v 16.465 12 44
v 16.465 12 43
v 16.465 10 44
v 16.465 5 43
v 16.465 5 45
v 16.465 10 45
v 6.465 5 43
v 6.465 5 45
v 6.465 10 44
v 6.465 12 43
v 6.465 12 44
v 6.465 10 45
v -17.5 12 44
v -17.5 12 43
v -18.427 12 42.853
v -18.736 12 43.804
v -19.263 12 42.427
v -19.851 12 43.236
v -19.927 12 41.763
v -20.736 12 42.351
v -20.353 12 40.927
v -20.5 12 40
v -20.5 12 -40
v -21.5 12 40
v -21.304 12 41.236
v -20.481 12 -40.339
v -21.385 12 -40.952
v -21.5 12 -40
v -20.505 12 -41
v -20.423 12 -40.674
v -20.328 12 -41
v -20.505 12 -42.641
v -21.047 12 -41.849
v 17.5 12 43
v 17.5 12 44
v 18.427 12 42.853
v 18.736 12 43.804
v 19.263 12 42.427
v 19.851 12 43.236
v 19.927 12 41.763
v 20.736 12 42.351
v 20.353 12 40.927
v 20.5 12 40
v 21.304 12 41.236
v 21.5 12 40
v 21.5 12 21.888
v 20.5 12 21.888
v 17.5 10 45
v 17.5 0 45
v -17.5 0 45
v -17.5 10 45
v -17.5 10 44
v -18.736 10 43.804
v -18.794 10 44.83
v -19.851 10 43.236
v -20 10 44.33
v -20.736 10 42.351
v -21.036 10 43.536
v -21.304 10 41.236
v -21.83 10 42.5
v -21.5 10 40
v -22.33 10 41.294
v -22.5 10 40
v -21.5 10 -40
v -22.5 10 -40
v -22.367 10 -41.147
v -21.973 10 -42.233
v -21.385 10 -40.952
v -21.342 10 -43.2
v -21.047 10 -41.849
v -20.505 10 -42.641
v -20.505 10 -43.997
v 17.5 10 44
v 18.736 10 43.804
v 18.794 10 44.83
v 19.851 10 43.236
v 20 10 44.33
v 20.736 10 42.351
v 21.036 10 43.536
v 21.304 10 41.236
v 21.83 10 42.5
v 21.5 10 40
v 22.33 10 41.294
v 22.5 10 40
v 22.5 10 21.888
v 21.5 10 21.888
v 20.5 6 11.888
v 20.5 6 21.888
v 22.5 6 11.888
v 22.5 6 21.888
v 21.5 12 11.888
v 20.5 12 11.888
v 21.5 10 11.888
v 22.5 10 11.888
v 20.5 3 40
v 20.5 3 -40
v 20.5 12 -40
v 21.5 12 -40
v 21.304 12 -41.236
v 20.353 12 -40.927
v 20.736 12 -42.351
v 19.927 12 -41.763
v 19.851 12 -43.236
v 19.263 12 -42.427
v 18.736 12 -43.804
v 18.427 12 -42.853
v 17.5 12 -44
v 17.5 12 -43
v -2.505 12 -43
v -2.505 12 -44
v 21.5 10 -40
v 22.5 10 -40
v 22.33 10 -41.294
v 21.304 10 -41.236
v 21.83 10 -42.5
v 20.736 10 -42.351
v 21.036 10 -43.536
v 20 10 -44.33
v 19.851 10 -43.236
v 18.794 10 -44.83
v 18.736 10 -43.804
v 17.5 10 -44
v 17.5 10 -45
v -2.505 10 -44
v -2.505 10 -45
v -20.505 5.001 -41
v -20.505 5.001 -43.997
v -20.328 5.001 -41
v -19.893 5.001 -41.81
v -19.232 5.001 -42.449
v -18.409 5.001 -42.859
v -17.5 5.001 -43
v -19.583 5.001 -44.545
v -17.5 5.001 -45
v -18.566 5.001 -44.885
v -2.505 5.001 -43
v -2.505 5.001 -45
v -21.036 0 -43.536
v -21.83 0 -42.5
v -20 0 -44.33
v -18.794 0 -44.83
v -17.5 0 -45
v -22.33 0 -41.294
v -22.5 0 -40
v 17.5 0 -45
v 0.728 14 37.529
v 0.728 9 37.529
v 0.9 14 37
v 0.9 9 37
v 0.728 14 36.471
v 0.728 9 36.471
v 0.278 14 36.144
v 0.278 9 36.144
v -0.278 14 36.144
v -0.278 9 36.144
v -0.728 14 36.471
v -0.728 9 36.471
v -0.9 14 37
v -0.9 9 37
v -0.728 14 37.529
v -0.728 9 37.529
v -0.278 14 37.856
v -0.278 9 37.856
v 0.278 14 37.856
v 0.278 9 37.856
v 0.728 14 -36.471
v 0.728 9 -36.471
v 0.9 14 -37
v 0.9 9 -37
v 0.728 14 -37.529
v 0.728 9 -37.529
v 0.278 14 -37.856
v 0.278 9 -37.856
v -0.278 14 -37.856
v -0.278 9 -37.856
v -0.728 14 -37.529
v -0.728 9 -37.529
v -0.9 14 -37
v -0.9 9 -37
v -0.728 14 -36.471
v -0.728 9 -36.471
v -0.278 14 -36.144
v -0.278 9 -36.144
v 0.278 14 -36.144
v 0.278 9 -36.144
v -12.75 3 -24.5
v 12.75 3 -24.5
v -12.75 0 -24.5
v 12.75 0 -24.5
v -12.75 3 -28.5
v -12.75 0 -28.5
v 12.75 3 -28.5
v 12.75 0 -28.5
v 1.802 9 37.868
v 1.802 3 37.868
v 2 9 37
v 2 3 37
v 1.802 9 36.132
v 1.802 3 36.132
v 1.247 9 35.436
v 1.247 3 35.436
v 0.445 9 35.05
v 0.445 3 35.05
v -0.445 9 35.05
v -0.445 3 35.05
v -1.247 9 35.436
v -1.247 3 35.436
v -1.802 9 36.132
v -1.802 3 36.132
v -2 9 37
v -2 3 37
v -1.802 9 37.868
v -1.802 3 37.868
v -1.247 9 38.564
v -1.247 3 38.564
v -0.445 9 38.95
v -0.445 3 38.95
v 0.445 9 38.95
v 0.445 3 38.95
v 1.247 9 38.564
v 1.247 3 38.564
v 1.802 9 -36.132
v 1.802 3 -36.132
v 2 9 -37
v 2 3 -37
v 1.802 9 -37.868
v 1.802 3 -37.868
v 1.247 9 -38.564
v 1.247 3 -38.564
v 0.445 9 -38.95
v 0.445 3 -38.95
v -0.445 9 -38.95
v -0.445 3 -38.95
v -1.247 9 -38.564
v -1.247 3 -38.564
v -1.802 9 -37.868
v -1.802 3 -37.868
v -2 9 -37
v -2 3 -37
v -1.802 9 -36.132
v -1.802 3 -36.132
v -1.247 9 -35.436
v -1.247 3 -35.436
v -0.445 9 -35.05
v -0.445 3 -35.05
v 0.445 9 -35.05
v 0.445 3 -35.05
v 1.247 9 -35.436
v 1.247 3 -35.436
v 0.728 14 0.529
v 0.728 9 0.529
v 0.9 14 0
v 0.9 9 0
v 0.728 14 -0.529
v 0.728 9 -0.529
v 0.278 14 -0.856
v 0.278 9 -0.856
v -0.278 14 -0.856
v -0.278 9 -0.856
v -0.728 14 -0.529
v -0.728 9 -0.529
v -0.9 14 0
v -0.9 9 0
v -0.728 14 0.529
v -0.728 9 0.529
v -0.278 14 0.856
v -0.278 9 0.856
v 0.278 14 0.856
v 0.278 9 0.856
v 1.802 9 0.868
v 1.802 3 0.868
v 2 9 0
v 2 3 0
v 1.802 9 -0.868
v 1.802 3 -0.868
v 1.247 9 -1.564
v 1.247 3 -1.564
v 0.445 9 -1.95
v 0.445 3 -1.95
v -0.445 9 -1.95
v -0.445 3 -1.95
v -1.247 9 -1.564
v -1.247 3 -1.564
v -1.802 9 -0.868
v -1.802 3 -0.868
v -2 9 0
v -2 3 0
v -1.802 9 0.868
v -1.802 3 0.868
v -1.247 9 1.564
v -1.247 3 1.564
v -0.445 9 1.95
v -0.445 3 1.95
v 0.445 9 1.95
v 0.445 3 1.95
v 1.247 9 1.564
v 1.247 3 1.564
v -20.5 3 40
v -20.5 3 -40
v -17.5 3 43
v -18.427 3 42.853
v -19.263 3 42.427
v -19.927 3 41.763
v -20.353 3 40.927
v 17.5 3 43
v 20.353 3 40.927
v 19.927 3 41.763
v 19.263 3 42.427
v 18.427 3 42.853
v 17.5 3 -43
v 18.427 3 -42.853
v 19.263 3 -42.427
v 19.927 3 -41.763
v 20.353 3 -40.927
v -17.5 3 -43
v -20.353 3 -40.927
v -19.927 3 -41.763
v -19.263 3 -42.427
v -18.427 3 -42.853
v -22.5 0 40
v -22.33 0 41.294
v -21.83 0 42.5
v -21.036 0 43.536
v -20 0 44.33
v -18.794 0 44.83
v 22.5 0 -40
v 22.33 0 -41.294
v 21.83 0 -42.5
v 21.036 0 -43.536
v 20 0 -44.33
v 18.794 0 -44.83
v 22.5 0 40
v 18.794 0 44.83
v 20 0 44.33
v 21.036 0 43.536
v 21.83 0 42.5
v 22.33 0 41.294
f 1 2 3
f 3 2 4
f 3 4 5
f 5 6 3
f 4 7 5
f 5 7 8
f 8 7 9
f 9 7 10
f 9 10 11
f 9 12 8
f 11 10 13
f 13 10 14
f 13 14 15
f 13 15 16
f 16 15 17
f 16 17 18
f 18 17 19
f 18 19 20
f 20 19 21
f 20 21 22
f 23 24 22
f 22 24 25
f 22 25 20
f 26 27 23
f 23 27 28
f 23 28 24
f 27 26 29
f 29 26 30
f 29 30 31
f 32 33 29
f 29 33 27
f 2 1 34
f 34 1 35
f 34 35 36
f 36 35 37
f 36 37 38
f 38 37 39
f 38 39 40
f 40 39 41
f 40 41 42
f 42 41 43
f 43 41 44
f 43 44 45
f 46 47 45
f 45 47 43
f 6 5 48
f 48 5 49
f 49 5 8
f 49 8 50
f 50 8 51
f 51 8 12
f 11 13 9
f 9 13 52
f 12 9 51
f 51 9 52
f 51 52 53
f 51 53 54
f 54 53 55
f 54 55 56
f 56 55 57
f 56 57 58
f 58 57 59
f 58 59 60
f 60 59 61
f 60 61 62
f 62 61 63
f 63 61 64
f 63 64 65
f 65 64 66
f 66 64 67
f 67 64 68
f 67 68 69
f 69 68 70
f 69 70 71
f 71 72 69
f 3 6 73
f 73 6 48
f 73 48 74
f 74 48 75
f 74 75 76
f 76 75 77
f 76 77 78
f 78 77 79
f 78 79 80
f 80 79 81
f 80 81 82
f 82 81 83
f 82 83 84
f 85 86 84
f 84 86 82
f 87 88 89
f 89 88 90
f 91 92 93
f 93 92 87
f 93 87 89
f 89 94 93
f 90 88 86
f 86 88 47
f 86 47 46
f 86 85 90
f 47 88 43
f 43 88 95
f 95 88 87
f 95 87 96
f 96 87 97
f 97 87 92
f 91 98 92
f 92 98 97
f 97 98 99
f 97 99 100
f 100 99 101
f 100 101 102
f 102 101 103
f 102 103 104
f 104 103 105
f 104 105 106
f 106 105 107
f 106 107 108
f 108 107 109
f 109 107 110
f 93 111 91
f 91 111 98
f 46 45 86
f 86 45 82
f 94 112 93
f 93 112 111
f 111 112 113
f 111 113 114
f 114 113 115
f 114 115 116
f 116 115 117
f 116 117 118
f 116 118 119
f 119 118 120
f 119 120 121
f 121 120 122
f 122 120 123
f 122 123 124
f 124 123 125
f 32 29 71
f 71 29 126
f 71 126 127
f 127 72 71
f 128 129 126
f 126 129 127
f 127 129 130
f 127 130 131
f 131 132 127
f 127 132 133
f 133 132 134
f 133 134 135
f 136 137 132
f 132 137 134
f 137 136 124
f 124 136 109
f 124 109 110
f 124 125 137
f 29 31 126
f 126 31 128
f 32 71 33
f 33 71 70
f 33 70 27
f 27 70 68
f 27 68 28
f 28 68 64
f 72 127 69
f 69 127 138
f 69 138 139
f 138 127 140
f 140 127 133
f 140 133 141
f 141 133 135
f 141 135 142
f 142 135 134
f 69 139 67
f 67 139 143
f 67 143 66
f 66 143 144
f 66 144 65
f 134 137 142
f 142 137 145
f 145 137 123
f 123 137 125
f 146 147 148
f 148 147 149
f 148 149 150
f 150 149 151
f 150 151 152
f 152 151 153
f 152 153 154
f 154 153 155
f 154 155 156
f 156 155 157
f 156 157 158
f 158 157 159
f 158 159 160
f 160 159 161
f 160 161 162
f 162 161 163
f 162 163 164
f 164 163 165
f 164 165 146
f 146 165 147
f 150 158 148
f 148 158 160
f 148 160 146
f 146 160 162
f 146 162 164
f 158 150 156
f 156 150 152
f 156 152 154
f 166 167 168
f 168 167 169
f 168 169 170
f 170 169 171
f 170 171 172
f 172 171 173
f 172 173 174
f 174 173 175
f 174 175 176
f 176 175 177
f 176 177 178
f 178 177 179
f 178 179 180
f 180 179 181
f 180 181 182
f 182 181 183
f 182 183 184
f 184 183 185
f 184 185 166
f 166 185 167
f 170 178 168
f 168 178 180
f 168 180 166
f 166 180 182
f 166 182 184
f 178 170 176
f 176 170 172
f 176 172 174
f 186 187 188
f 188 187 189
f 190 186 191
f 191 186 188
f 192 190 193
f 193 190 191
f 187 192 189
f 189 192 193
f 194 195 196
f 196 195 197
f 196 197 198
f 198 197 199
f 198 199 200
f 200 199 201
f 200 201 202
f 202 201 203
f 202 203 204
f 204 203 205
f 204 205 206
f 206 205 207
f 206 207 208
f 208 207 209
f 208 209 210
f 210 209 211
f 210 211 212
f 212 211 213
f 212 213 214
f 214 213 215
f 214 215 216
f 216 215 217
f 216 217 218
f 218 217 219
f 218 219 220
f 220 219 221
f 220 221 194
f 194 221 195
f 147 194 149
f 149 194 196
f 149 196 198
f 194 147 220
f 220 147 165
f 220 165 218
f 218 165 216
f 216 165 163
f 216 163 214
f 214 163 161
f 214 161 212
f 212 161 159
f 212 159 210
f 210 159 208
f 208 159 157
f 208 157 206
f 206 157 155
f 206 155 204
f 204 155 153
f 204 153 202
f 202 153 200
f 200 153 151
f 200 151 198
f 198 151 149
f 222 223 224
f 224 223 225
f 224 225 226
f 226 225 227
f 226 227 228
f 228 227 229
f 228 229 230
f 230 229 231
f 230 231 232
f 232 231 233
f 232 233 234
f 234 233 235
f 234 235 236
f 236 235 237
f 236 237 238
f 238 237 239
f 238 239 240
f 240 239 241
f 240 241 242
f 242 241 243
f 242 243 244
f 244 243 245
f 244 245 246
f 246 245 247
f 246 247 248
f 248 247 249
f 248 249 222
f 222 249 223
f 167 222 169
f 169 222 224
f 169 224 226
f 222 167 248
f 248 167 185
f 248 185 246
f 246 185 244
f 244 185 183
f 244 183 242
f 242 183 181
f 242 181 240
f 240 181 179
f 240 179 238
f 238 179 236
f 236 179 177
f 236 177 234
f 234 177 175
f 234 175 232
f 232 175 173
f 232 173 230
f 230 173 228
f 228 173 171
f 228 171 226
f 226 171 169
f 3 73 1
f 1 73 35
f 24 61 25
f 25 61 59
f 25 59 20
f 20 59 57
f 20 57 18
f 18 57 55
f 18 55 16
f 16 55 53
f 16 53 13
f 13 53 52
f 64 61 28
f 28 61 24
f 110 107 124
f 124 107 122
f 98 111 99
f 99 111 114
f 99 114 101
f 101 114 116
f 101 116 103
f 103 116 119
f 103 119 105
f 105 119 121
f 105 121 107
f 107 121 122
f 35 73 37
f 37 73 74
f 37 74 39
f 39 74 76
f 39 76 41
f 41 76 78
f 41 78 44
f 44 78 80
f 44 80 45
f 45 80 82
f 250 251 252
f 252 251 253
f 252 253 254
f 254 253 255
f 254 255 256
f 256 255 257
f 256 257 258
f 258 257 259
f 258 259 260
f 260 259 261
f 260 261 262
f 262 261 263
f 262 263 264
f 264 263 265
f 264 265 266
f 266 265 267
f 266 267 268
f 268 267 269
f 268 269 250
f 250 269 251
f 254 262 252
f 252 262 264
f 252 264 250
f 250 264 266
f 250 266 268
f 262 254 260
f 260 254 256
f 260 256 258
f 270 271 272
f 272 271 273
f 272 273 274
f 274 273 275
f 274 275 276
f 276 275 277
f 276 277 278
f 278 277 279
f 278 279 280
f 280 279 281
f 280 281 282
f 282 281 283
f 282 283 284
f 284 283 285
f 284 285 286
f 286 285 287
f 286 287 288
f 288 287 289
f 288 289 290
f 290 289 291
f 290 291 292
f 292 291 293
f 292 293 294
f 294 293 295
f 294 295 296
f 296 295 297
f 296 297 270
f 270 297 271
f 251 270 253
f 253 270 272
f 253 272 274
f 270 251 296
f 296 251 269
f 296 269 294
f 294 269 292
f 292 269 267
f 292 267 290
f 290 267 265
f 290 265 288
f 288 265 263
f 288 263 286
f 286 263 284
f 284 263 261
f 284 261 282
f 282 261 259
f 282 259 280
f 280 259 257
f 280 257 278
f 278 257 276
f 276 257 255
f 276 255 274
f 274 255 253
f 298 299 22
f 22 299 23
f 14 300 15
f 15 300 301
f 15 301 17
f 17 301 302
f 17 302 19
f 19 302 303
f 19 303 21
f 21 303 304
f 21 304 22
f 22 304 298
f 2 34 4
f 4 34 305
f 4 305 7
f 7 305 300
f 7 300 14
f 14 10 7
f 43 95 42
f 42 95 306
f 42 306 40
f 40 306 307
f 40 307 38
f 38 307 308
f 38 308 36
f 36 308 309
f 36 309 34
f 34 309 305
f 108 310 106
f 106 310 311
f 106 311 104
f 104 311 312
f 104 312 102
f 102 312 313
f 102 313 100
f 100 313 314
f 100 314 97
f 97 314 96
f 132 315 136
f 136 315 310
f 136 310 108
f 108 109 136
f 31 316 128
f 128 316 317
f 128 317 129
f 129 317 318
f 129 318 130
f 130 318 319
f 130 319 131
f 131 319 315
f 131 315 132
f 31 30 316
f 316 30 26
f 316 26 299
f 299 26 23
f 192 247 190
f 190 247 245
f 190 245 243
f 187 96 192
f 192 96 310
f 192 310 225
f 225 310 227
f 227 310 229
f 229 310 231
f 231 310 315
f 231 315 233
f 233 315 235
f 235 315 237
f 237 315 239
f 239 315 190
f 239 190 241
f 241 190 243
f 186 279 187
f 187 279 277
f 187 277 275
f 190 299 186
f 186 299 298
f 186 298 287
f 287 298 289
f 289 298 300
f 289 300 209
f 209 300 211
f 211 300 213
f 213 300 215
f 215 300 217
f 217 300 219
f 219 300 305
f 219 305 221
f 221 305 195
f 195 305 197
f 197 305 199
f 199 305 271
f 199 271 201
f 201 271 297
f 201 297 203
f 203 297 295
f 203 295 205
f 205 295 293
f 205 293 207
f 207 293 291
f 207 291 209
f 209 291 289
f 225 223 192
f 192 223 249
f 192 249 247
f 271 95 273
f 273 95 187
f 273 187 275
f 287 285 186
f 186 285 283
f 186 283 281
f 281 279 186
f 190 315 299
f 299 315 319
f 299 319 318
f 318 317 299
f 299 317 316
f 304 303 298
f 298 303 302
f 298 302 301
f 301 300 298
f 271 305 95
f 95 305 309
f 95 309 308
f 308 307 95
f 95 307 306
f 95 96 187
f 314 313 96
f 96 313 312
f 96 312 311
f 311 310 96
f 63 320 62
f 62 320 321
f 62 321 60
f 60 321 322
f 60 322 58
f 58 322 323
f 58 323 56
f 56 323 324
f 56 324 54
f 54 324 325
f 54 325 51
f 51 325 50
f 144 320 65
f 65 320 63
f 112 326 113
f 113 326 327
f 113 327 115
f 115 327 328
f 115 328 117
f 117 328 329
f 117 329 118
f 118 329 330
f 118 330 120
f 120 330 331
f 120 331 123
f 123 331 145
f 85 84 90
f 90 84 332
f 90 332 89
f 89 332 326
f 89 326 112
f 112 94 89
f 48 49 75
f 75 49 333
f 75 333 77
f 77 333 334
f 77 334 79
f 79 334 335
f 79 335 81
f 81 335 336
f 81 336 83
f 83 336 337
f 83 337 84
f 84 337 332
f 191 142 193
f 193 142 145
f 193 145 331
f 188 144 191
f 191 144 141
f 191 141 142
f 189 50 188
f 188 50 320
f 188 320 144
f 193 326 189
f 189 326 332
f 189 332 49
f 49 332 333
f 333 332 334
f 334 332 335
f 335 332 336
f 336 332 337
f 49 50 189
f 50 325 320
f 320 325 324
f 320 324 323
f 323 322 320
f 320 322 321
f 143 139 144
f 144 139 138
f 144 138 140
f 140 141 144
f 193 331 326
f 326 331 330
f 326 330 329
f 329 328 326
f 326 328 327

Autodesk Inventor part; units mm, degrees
ref_plane "YZ Plane" through (0, 0, 0) normal (1, 0, 0) x (0, 1, 0)
ref_plane "XZ Plane" through (0, 0, 0) normal (0, 1, 0) x (-1, 0, 0)
ref_plane "XY Plane" through (0, 0, 0) normal (0, 0, 1) x (1, 0, 0)
sketch "Boceto1" plane through (0, 0, 0) normal (0, 1, 0) x (-1, 0, 0)
  line L0 (17.5, 45) -> (-17.5, 45)
  line L1 (-22.5, 40) -> (-22.5, -40)
  line L2 (-17.5, -45) -> (17.5, -45)
  line L3 (22.5, -40) -> (22.5, 40)
  line L4 (22.5, 45) -> (-22.5, -45) construction
  line L5 (-22.5, 45) -> (22.5, -45) construction
  arc A0 (22.5, 40) -> (17.5, 45) centre (17.5, 40) ccw
  arc A1 (-17.5, 45) -> (-22.5, 40) centre (-17.5, 40) ccw
  arc A2 (-22.5, -40) -> (-17.5, -45) centre (-17.5, -40) ccw
  arc A3 (17.5, -45) -> (22.5, -40) centre (17.5, -40) ccw
  point P0 (0, 0)
  dimension "d0" = 45
  dimension "d1" = 90
  dimension "d2" = 5
extrude "Extrusión1" add sketch "Boceto1" along normal blind 10
sketch "Boceto3" plane through (0, 10, 0) normal (0, 1, 0) x (1, 0, 0)
  line L0 (17.5, 43) -> (-17.5, 43) projected
  arc A0 (-17.5, 43) -> (-20.5, 40) centre (-17.5, 40) ccw projected
  line L1 (-20.5, 40) -> (-20.5, -40) projected
  arc A1 (-20.5, -40) -> (-17.5, -43) centre (-17.5, -40) ccw projected
  line L2 (-17.5, -43) -> (17.5, -43) projected
  arc A2 (17.5, -43) -> (20.5, -40) centre (17.5, -40) ccw projected
  line L3 (20.5, -40) -> (20.5, 40) projected
  arc A3 (20.5, 40) -> (17.5, 43) centre (17.5, 40) ccw projected
  point P0 (0, 0)
extrude "Extrusión3" cut sketch "Boceto3" against normal blind 7
sketch "Boceto5" plane through (0, 3, 0) normal (0, 1, 0) x (1, 0, 0)
  circle A0 centre (0, 0) radius 2
  dimension "d21" = 4
extrude "Extrusión5" add sketch "Boceto5" along normal blind 6
sketch "Boceto6" plane through (0, 9, 0) normal (0, 1, 0) x (1, 0, 0)
  circle A0 centre (0, 0) radius 2 projected
  circle A1 centre (0, 0) radius 0.9
  dimension "d24" = 1.8
extrude "Extrusión6" add sketch "Boceto6" along normal blind 5 contours A1
sketch "Boceto7" plane through (0, 10, 0) normal (0, 1, 0) x (1, 0, 0)
  line L0 (-20.5, -40) -> (-20.5, 40) projected
  arc A0 (-17.5, 43) -> (-20.5, 40) centre (-17.5, 40) ccw projected
  line L1 (-17.5, 43) -> (17.5, 43) projected
  arc A1 (20.5, 40) -> (17.5, 43) centre (17.5, 40) ccw projected
  line L2 (20.5, 40) -> (20.5, -40) projected
  arc A2 (17.5, -43) -> (20.5, -40) centre (17.5, -40) ccw projected
  line L3 (17.5, -43) -> (-17.5, -43) projected
  arc A3 (-20.5, -40) -> (-17.5, -43) centre (-17.5, -40) ccw projected
  arc A4 (17.5, -45) -> (22.5, -40) centre (17.5, -40) ccw projected
  line L4 (22.5, -40) -> (22.5, 40) projected
  arc A5 (22.5, 40) -> (17.5, 45) centre (17.5, 40) ccw projected
  line L5 (17.5, 45) -> (-17.5, 45) projected
  arc A6 (-17.5, 45) -> (-22.5, 40) centre (-17.5, 40) ccw projected
  line L6 (-22.5, 40) -> (-22.5, -40) projected
  arc A7 (-22.5, -40) -> (-17.5, -45) centre (-17.5, -40) ccw projected
  line L7 (-17.5, -45) -> (17.5, -45) projected
  line L8 (-17.5, -44) -> (17.5, -44)
  arc A8 (17.5, -44) -> (21.5, -40) centre (17.5, -40) ccw
  line L9 (21.5, -40) -> (21.5, 40)
  arc A9 (21.5, 40) -> (17.5, 44) centre (17.5, 40) ccw
  line L10 (17.5, 44) -> (-17.5, 44)
  arc A10 (-17.5, 44) -> (-21.5, 40) centre (-17.5, 40) ccw
  line L11 (-21.5, 40) -> (-21.5, -40)
  arc A11 (-21.5, -40) -> (-17.5, -44) centre (-17.5, -40) ccw
  point P0 (0, 0)
  dimension "d27" = 1
extrude "Extrusión7" add sketch "Boceto7" along normal blind 2 contours A11 L11 A10 L10 A9 L9 A8 L8
sketch "Boceto8" plane through (0, 3, 0) normal (0, 1, 0) x (1, 0, 0)
  line L0 (17.5, -43) -> (-17.5, -43) construction
  line L1 (0, -43) -> (0, -37) construction
  line L2 (-17.5, 43) -> (17.5, 43) construction
  line L3 (0, 43) -> (0, 37) construction
  circle A0 centre (0, -37) radius 2
  circle A1 centre (0, -37) radius 1.5
  circle A2 centre (0, 37) radius 2
  circle A3 centre (0, 37) radius 1.5
  point P0 (0, 0)
  dimension "d30" = 6
  dimension "d31" = 6
  dimension "d32" = 4
  dimension "d33" = 3
  dimension "d34" = 4
  dimension "d35" = 3
extrude "Extrusión8" add sketch "Boceto8" along normal blind 6 contours A0 | A1 | A2 | A3
sketch "Boceto9" plane through (0, 0, 0) normal (0, -1, 0) x (1, 0, 0)
  line L0 (0, -28.5) -> (23, -28.5) construction
  line L1 (0, -28.5) -> (0, -24.5) construction
  line L2 (12.75, -24.5) -> (-12.75, -24.5)
  line L3 (-12.75, -24.5) -> (-12.75, -28.5)
  line L4 (-12.75, -28.5) -> (12.75, -28.5)
  line L5 (12.75, -28.5) -> (12.75, -24.5)
  line L6 (12.75, -24.5) -> (-12.75, -28.5) construction
  line L7 (-12.75, -24.5) -> (12.75, -28.5) construction
  point P0 (0, 0)
  point P1 (0, -26.5)
  dimension "d38" = 4
  dimension "d39" = 25.5
extrude "Extrusión9" cut sketch "Boceto9" against normal blind 10
sketch "Sketch10" plane through (0, 9, -37) normal (0, 1, 0) x (1, 0, 0)
  circle A0 centre (0, 0) radius 0.9
  point P0 (0, -37)
  dimension "d42" = 1.8
extrude "Extrusion10" add sketch "Sketch10" along normal blind 5
sketch "Sketch11" plane through (0, 9, 37) normal (0, 1, 0) x (1, 0, 0)
  circle A0 centre (0, 0) radius 0.9
  point P0 (0, 37)
  dimension "d45" = 1.8
extrude "Extrusion11" add sketch "Sketch11" along normal blind 5
sketch "Sketch15" plane through (17.5, 0, -45) normal (0, 0, -1) x (-1, 0, 0)
  line L0 (38.0046, 12.0013) -> (20.0046, 12.0013)
  line L1 (20.0046, 12.0013) -> (20.0046, 5.0013)
  line L2 (20.0046, 5.0013) -> (38.0046, 5.0013)
  line L3 (38.0046, 5.0013) -> (38.0046, 12.0013)
  point P0 (17.5, 0)
  dimension "d50" = 18
  dimension "d51" = 7
extrude "Extrusion12" cut sketch "Sketch15" against normal blind 4
sketch "Sketch17" plane through (22.5, 0, 40) normal (1, 0, 0) x (0, 0, -1)
  line L0 (0, 12) -> (80, 12) projected
  line L1 (18.1121, 12) -> (28.1121, 12)
  line L2 (28.1121, 12) -> (28.1121, 6)
  line L3 (28.1121, 6) -> (18.1121, 6)
  line L4 (18.1121, 6) -> (18.1121, 12)
  point P0 (40, 0)
  dimension "d56" = 10
  dimension "d57" = 6
extrude "Extrusion13" cut sketch "Sketch17" against normal blind 4
sketch "Sketch18" plane through (-17.5, 0, 45) normal (0, 0, 1) x (1, 0, 0)
  line L0 (33.9645, 12) -> (23.9645, 12)
  line L1 (23.9645, 12) -> (23.9645, 5)
  line L2 (23.9645, 5) -> (33.9645, 5)
  line L3 (33.9645, 5) -> (33.9645, 12)
  point P0 (17.5, 0)
  dimension "d60" = 10
  dimension "d61" = 7
extrude "Extrusion14" cut sketch "Sketch18" against normal blind 4
properties part number "Pieza_superior"
